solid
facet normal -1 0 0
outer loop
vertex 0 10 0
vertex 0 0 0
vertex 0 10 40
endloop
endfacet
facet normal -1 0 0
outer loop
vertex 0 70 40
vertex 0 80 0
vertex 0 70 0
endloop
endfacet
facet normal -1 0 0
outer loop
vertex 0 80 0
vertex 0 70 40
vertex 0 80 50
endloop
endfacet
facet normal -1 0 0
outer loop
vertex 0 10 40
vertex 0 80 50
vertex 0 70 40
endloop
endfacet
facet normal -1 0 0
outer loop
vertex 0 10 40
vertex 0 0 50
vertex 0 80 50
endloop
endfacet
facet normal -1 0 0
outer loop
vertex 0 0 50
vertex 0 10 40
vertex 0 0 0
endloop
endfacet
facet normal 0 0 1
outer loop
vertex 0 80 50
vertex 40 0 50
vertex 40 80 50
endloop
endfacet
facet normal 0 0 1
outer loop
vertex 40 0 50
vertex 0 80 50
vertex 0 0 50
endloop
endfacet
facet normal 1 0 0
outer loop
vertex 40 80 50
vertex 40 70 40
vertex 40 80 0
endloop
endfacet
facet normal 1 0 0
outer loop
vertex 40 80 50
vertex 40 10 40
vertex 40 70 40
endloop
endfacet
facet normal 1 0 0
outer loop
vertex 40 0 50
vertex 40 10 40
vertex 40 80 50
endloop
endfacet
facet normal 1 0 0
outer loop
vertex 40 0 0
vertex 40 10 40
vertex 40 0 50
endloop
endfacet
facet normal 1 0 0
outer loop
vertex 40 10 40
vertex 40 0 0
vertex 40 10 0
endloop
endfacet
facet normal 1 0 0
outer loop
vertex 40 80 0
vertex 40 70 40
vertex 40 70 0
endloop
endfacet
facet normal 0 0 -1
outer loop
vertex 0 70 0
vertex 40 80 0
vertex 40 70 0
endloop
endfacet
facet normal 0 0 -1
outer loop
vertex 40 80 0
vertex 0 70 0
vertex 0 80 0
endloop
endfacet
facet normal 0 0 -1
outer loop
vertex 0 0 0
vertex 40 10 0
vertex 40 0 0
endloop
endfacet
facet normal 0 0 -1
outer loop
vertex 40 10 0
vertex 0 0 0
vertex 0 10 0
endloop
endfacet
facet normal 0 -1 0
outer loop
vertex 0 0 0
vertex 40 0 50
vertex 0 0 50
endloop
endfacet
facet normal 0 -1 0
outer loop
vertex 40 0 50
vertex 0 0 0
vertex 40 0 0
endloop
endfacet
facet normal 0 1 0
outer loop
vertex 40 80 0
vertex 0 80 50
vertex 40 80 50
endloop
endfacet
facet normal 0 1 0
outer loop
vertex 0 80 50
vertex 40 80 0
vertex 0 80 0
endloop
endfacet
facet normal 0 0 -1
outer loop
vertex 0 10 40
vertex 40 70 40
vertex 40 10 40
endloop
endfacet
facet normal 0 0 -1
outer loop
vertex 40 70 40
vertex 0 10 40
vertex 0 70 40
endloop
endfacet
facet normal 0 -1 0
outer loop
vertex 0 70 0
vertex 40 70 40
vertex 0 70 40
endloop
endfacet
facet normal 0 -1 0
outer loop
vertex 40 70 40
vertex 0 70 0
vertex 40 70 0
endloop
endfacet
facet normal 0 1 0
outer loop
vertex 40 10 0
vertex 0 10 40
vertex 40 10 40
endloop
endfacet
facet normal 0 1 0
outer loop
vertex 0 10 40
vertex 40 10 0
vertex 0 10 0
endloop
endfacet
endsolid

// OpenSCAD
difference() {
	cube([40, 80, 50]);
	translate([0, 10, 0]) cube([40, 60, 40]);
}
